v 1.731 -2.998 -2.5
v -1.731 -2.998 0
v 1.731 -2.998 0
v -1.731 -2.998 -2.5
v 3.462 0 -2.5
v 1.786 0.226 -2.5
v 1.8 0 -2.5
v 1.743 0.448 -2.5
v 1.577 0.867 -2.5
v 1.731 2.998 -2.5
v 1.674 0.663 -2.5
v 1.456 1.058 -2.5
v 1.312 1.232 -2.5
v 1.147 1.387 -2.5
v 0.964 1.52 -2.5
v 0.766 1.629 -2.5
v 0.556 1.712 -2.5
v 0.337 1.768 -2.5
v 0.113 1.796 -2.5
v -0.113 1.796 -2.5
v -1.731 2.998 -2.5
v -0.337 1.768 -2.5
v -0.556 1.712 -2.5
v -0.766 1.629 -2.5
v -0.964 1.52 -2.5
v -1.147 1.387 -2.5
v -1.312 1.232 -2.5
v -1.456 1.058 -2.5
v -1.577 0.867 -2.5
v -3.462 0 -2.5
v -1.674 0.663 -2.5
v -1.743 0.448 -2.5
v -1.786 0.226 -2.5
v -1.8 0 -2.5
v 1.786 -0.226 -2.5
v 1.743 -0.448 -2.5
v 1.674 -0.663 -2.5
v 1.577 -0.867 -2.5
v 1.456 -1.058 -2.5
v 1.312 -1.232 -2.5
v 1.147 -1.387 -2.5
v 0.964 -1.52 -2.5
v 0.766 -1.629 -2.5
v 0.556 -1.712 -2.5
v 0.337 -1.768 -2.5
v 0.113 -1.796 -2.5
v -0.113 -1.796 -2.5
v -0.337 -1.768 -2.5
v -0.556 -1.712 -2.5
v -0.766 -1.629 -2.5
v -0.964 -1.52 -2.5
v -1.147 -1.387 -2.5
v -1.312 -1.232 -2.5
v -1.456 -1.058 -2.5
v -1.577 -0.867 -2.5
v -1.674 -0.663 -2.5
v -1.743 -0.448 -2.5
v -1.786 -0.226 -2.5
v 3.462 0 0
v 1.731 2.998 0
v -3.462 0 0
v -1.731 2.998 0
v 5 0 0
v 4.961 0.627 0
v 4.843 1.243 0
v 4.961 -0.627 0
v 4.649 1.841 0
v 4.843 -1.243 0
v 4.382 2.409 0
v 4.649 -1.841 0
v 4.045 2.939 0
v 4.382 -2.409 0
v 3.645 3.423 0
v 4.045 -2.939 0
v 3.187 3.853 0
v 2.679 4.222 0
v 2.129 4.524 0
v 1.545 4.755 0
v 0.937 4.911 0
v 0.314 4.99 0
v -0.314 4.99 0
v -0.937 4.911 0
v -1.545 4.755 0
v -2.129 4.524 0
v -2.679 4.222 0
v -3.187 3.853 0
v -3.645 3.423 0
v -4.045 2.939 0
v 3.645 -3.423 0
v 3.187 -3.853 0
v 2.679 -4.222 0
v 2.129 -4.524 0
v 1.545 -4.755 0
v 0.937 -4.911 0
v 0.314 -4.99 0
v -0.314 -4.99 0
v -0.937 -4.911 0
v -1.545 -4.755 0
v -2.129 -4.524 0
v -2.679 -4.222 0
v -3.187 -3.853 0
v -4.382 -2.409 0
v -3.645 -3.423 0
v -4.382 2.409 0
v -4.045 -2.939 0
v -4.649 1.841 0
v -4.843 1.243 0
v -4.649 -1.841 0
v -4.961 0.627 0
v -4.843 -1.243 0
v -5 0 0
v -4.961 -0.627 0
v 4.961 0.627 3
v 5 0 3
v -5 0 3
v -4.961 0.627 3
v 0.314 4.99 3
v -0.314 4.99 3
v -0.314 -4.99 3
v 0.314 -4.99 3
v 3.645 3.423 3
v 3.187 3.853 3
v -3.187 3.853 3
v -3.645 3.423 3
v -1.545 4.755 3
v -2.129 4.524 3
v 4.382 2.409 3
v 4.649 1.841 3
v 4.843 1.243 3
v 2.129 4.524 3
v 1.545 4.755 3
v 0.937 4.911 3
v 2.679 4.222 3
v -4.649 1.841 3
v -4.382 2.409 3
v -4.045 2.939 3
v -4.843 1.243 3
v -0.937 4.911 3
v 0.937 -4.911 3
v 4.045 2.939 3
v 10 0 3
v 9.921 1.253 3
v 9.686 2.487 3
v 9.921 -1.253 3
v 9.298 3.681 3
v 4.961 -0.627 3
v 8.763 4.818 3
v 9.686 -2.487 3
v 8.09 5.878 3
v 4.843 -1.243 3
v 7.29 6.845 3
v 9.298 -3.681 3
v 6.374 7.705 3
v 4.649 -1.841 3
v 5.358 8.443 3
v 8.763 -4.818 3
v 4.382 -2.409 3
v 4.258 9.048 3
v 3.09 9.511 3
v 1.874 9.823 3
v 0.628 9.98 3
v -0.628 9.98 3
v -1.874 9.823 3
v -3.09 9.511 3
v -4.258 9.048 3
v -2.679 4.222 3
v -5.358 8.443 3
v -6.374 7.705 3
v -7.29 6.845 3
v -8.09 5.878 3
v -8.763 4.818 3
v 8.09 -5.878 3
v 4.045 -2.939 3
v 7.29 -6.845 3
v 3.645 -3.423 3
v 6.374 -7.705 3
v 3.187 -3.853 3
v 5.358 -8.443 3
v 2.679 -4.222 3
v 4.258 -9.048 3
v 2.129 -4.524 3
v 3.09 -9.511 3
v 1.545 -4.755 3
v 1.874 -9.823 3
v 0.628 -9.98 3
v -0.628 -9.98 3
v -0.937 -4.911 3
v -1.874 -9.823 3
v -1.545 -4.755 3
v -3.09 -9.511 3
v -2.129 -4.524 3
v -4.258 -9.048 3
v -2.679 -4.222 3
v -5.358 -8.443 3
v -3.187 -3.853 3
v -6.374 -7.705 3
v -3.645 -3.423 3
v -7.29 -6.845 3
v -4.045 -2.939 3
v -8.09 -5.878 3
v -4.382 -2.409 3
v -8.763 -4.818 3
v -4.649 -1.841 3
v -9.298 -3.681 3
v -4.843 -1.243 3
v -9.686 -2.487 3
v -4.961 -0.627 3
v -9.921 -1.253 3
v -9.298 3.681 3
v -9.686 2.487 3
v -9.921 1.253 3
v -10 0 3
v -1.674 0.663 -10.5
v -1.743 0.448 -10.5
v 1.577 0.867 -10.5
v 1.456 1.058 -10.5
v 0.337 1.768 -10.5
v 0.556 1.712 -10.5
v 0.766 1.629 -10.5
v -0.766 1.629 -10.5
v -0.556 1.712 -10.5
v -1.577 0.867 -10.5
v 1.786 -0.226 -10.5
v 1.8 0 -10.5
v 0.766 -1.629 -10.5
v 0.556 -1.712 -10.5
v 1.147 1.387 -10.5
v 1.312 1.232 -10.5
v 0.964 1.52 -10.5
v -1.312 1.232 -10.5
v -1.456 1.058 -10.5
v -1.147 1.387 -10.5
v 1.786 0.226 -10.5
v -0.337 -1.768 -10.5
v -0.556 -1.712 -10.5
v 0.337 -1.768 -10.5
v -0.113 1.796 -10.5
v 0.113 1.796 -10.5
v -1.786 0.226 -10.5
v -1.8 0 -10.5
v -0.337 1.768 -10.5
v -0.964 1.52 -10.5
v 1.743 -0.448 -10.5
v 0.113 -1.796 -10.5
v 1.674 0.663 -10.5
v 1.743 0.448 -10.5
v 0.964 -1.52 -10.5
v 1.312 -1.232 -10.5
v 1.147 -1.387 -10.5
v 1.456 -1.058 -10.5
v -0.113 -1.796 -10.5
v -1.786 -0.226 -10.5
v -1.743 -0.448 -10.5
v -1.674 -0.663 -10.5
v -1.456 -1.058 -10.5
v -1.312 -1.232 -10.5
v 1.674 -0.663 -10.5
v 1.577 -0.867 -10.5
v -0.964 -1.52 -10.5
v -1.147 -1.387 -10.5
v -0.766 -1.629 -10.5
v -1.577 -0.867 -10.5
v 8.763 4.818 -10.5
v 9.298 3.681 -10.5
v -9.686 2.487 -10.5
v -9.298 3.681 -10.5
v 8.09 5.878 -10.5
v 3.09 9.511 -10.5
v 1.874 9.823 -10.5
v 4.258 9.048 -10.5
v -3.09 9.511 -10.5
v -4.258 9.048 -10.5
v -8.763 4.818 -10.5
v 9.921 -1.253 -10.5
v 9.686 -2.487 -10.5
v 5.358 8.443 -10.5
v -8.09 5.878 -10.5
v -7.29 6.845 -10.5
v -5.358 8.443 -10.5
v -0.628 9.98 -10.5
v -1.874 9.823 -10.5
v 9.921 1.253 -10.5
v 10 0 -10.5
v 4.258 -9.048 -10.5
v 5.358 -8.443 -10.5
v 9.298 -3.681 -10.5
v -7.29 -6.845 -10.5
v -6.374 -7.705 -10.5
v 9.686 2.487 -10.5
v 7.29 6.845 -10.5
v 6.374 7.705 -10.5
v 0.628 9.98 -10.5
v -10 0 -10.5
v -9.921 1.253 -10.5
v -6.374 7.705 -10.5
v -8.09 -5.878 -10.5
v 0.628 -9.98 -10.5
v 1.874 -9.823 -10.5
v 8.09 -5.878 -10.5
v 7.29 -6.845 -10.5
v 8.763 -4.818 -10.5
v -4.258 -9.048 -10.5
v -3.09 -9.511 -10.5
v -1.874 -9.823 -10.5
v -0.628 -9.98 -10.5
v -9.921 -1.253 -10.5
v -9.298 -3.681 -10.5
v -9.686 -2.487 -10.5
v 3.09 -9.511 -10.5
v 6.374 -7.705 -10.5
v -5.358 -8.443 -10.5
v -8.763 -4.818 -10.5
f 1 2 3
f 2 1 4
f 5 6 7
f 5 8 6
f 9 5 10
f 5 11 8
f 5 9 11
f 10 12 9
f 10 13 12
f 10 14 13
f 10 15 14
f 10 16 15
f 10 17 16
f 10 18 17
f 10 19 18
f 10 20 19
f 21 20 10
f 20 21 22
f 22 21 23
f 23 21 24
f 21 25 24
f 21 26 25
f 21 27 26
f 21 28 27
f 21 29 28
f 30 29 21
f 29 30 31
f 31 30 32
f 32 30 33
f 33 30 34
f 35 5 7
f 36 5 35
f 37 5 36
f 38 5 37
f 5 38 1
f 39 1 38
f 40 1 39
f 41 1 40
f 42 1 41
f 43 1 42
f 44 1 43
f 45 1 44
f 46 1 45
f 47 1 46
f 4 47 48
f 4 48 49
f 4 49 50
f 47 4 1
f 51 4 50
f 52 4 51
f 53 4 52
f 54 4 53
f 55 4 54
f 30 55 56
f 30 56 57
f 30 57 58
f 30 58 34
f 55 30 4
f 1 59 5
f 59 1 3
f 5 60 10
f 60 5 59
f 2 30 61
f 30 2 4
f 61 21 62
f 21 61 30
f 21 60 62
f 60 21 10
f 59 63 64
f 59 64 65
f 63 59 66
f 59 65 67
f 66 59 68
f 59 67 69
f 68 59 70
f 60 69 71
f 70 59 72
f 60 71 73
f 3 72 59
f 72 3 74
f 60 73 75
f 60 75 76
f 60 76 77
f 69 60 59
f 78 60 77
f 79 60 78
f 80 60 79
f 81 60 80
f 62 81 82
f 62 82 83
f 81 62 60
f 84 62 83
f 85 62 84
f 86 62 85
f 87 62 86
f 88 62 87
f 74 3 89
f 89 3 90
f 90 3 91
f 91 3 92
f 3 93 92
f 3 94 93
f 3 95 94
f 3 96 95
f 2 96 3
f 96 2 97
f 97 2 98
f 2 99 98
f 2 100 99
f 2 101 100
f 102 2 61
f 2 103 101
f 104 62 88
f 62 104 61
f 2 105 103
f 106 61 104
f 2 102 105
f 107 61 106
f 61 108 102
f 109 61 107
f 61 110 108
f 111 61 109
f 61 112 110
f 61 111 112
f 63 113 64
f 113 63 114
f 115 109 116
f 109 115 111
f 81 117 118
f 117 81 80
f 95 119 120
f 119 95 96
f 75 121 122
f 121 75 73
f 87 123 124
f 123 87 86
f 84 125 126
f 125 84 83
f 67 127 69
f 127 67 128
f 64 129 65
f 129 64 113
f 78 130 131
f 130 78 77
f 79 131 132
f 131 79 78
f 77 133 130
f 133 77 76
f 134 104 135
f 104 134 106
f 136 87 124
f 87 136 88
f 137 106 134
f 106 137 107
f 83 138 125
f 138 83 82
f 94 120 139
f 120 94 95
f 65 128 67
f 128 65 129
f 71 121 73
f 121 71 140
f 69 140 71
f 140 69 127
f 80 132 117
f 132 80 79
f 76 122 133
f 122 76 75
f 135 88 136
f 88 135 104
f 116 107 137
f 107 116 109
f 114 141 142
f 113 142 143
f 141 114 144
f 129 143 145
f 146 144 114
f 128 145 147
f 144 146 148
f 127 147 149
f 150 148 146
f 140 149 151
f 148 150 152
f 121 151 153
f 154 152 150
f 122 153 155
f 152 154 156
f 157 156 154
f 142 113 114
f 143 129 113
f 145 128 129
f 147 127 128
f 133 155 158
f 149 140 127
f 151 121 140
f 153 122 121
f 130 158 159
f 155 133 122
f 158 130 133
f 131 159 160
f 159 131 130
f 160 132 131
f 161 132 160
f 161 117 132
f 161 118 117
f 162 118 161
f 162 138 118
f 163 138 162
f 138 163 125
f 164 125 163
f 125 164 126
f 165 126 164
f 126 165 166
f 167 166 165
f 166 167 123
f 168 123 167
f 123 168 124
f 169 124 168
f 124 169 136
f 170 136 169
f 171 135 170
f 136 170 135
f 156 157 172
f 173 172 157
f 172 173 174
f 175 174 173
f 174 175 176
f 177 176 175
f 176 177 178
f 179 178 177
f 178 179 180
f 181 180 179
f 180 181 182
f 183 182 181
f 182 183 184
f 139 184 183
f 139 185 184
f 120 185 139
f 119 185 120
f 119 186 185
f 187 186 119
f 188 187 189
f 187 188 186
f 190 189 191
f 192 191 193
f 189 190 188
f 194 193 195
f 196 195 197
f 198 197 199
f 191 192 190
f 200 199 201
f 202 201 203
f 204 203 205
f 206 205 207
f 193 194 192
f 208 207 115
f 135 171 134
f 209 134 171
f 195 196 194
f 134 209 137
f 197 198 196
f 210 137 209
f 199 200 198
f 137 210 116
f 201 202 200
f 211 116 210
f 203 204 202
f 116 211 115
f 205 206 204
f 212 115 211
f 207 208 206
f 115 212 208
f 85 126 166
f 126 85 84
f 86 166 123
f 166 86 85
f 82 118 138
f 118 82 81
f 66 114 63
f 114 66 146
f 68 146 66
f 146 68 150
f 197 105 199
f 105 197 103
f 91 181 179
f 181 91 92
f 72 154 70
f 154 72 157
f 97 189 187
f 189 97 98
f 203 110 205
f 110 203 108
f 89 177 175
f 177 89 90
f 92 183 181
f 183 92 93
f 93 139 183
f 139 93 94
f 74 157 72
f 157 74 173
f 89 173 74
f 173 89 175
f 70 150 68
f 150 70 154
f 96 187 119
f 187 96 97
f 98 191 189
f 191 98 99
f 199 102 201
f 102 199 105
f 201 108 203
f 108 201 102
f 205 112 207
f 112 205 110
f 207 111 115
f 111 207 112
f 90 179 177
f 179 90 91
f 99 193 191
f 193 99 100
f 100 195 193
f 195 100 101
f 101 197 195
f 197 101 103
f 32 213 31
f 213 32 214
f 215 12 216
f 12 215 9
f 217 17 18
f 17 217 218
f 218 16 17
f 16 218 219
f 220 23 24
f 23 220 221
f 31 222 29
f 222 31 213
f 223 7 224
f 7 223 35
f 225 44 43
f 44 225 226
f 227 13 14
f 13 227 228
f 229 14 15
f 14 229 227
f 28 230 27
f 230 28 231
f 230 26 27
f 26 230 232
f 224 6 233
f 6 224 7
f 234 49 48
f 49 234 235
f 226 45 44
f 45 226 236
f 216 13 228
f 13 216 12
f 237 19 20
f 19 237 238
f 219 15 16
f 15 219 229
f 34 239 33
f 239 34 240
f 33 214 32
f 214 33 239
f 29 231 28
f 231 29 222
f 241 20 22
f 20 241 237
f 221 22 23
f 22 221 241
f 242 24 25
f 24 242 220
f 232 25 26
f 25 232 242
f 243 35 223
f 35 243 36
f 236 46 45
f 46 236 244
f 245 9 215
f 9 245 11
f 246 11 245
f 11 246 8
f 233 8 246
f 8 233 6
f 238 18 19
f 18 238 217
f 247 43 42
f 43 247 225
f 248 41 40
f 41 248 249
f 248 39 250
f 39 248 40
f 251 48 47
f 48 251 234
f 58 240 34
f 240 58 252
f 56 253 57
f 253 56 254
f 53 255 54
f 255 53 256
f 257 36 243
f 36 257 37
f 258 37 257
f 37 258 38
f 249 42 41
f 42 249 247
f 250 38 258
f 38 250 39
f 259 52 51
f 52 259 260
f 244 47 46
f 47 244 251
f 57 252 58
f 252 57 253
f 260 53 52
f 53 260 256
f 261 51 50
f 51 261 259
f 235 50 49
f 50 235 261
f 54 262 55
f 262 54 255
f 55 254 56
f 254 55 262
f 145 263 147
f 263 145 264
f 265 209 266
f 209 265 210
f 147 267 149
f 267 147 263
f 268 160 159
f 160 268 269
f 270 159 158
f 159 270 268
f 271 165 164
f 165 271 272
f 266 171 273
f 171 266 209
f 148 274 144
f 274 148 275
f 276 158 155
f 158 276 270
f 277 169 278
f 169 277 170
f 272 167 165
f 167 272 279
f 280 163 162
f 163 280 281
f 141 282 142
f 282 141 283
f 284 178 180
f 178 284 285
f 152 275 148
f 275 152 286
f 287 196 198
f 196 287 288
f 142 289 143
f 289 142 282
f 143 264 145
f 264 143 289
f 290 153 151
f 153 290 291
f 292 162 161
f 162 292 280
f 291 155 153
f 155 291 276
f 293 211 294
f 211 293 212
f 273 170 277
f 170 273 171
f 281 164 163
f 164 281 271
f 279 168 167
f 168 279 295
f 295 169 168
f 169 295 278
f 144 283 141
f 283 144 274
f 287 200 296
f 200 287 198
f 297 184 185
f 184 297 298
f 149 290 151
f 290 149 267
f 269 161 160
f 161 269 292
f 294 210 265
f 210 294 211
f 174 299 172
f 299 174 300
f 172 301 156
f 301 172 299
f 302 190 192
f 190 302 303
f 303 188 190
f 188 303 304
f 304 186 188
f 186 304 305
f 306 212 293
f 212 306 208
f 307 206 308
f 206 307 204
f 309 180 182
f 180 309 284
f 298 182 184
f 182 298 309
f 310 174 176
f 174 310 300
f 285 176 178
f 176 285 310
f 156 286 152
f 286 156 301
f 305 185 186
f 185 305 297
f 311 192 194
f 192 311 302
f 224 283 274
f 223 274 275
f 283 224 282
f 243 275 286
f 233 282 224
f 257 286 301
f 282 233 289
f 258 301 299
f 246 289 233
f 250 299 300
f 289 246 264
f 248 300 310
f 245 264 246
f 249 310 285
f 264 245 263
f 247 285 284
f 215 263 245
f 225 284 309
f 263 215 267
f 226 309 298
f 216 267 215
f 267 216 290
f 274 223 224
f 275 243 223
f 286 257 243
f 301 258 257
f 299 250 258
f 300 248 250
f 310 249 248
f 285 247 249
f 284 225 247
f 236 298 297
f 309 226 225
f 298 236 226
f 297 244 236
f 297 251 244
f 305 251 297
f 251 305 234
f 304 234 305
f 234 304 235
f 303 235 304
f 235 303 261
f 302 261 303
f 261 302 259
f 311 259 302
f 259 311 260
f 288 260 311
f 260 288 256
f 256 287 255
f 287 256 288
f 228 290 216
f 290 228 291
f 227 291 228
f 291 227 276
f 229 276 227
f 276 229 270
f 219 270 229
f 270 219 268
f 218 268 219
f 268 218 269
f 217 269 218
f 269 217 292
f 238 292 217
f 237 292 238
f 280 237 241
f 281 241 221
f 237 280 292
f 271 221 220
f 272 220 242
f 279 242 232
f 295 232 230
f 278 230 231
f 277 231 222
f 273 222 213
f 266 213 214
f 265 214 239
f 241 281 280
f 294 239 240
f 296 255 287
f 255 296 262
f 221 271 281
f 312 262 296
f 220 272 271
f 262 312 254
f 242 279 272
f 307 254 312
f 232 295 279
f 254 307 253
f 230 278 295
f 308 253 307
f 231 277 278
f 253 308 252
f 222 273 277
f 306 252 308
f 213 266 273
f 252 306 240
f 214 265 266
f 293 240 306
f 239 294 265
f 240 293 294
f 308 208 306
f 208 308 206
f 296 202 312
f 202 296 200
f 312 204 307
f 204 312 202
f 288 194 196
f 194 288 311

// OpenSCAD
$fn = 50;


difference() {
	union() {
		translate(v = [0, 0, -10.5000000000]) {
			cylinder(h = 13.5000000000, r = 10.0000000000);
		}
	}
	union() {
		translate(v = [0, 0, 0]) {
			rotate(a = [0, 0, 0]) {
				difference() {
					union() {
						translate(v = [0, 0, -2.5000000000]) {
							linear_extrude(height = 2.5000000000) {
								polygon(points = [[3.4620000000, 0.0000000000], [1.7310000000, 2.9981799479], [-1.7310000000, 2.9981799479], [-3.4620000000, 0.0000000000], [-1.7310000000, -2.9981799479], [1.7310000000, -2.9981799479]]);
							}
						}
					}
					union();
				}
			}
		}
		#cylinder(h = 3, r = 5.0000000000);
		#translate(v = [0, 0, -100.0000000000]) {
			cylinder(h = 200, r = 1.8000000000);
		}
	}
}
